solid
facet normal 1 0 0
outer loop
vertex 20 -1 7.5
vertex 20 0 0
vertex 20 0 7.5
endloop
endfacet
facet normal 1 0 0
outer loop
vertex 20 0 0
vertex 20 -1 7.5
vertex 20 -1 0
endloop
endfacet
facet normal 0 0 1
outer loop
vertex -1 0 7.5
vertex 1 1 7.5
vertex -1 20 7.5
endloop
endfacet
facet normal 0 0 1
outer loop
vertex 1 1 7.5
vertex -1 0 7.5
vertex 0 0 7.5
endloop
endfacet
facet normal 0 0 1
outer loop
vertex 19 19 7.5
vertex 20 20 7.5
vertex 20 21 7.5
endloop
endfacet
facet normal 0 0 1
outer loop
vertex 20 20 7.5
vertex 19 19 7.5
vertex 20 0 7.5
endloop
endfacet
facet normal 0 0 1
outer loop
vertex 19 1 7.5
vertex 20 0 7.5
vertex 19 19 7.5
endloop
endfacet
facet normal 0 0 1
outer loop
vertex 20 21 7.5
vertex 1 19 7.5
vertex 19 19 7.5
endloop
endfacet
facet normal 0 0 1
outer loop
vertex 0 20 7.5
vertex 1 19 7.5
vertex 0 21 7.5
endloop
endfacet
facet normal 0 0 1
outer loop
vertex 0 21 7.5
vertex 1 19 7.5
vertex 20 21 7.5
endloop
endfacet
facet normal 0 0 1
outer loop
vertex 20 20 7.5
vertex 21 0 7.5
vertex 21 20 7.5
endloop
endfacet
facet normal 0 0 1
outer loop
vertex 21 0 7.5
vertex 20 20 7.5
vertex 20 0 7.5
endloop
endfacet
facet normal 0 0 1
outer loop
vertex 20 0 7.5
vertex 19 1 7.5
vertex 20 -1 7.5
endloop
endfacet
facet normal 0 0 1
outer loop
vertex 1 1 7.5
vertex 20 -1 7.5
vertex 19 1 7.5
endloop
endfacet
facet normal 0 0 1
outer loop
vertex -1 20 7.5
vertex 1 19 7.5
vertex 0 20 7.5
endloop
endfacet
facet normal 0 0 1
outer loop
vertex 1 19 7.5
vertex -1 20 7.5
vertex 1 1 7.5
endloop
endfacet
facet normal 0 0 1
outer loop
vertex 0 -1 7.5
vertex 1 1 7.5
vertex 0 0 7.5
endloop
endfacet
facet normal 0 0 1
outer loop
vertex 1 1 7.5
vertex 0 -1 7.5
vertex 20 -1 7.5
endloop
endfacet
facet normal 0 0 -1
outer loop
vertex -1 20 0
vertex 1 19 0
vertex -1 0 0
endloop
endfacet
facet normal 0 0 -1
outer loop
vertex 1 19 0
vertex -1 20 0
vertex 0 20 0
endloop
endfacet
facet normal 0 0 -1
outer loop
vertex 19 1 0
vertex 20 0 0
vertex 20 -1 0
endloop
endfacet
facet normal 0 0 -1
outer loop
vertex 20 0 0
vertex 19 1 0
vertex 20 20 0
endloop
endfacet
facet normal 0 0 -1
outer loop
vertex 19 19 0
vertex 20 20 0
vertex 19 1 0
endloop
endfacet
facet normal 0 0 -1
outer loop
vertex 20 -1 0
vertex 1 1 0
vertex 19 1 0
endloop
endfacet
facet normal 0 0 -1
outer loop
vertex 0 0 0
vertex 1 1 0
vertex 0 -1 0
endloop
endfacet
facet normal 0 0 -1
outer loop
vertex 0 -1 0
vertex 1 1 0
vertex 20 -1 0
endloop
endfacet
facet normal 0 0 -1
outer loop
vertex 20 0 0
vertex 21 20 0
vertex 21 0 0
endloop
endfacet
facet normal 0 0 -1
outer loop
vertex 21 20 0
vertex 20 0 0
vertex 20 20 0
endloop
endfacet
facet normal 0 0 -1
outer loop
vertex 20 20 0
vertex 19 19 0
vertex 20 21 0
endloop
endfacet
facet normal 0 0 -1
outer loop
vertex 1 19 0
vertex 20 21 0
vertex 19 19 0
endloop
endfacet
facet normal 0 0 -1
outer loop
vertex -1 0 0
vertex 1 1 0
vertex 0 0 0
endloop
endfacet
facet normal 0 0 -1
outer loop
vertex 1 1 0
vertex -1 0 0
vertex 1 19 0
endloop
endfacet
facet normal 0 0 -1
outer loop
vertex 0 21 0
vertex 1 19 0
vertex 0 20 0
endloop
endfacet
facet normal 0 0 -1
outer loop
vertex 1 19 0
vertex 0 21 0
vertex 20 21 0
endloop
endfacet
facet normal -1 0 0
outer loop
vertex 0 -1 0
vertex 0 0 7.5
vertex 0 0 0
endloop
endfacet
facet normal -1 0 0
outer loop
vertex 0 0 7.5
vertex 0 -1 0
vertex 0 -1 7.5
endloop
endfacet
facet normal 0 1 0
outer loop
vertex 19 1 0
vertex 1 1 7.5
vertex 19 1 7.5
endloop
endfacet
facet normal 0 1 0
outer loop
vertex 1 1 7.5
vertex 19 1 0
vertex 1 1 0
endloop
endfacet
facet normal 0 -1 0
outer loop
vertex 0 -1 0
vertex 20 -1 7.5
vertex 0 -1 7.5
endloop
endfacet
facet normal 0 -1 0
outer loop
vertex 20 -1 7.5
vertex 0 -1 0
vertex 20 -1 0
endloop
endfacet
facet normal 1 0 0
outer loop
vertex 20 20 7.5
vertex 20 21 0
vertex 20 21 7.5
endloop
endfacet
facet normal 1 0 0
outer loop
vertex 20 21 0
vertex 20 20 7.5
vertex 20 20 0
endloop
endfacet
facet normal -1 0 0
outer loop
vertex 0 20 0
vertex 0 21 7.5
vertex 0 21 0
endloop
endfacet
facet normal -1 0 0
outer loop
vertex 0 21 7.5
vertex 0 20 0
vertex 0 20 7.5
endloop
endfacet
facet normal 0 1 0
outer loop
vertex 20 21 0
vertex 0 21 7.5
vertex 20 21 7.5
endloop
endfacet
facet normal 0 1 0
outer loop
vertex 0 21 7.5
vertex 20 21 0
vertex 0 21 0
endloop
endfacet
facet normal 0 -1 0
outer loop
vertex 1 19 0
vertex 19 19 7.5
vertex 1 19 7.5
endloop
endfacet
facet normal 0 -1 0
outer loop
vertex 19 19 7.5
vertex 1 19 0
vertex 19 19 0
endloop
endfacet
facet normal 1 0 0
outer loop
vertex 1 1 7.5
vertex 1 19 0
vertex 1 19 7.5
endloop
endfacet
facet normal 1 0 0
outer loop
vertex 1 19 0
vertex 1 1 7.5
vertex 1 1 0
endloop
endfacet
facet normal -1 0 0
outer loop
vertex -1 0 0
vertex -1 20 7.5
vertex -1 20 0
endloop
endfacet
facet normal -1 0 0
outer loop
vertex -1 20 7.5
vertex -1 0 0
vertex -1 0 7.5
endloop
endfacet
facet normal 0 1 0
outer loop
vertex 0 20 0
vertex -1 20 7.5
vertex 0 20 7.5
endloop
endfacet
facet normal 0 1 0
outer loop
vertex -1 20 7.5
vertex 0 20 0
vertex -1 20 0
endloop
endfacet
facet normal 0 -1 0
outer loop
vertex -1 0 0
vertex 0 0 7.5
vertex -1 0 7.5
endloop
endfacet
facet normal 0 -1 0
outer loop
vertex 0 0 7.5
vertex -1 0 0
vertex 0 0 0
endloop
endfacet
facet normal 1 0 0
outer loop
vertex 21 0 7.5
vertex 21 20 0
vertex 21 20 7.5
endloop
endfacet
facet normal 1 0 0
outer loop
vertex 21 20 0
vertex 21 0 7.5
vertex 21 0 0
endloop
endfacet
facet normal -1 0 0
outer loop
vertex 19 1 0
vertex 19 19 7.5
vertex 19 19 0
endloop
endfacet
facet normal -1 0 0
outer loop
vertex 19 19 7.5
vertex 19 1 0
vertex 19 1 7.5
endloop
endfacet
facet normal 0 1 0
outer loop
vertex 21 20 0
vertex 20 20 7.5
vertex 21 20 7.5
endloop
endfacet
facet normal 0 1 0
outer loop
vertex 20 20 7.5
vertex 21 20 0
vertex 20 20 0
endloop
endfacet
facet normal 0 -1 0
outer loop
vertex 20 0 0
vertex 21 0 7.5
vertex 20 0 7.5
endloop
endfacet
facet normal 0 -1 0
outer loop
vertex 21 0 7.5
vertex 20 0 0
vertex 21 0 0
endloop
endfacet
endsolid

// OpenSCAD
//walls are red
translate ([0, -1, 0]) 
	cube([20, 2, 7.5]);
translate ([0, 19, 0]) 
	cube([20, 2, 7.5]);
translate ([-1, 0, 0]) 
	cube([2, 20, 7.5]);
translate ([19, 0, 0]) 
	cube([2, 20, 7.5]);
